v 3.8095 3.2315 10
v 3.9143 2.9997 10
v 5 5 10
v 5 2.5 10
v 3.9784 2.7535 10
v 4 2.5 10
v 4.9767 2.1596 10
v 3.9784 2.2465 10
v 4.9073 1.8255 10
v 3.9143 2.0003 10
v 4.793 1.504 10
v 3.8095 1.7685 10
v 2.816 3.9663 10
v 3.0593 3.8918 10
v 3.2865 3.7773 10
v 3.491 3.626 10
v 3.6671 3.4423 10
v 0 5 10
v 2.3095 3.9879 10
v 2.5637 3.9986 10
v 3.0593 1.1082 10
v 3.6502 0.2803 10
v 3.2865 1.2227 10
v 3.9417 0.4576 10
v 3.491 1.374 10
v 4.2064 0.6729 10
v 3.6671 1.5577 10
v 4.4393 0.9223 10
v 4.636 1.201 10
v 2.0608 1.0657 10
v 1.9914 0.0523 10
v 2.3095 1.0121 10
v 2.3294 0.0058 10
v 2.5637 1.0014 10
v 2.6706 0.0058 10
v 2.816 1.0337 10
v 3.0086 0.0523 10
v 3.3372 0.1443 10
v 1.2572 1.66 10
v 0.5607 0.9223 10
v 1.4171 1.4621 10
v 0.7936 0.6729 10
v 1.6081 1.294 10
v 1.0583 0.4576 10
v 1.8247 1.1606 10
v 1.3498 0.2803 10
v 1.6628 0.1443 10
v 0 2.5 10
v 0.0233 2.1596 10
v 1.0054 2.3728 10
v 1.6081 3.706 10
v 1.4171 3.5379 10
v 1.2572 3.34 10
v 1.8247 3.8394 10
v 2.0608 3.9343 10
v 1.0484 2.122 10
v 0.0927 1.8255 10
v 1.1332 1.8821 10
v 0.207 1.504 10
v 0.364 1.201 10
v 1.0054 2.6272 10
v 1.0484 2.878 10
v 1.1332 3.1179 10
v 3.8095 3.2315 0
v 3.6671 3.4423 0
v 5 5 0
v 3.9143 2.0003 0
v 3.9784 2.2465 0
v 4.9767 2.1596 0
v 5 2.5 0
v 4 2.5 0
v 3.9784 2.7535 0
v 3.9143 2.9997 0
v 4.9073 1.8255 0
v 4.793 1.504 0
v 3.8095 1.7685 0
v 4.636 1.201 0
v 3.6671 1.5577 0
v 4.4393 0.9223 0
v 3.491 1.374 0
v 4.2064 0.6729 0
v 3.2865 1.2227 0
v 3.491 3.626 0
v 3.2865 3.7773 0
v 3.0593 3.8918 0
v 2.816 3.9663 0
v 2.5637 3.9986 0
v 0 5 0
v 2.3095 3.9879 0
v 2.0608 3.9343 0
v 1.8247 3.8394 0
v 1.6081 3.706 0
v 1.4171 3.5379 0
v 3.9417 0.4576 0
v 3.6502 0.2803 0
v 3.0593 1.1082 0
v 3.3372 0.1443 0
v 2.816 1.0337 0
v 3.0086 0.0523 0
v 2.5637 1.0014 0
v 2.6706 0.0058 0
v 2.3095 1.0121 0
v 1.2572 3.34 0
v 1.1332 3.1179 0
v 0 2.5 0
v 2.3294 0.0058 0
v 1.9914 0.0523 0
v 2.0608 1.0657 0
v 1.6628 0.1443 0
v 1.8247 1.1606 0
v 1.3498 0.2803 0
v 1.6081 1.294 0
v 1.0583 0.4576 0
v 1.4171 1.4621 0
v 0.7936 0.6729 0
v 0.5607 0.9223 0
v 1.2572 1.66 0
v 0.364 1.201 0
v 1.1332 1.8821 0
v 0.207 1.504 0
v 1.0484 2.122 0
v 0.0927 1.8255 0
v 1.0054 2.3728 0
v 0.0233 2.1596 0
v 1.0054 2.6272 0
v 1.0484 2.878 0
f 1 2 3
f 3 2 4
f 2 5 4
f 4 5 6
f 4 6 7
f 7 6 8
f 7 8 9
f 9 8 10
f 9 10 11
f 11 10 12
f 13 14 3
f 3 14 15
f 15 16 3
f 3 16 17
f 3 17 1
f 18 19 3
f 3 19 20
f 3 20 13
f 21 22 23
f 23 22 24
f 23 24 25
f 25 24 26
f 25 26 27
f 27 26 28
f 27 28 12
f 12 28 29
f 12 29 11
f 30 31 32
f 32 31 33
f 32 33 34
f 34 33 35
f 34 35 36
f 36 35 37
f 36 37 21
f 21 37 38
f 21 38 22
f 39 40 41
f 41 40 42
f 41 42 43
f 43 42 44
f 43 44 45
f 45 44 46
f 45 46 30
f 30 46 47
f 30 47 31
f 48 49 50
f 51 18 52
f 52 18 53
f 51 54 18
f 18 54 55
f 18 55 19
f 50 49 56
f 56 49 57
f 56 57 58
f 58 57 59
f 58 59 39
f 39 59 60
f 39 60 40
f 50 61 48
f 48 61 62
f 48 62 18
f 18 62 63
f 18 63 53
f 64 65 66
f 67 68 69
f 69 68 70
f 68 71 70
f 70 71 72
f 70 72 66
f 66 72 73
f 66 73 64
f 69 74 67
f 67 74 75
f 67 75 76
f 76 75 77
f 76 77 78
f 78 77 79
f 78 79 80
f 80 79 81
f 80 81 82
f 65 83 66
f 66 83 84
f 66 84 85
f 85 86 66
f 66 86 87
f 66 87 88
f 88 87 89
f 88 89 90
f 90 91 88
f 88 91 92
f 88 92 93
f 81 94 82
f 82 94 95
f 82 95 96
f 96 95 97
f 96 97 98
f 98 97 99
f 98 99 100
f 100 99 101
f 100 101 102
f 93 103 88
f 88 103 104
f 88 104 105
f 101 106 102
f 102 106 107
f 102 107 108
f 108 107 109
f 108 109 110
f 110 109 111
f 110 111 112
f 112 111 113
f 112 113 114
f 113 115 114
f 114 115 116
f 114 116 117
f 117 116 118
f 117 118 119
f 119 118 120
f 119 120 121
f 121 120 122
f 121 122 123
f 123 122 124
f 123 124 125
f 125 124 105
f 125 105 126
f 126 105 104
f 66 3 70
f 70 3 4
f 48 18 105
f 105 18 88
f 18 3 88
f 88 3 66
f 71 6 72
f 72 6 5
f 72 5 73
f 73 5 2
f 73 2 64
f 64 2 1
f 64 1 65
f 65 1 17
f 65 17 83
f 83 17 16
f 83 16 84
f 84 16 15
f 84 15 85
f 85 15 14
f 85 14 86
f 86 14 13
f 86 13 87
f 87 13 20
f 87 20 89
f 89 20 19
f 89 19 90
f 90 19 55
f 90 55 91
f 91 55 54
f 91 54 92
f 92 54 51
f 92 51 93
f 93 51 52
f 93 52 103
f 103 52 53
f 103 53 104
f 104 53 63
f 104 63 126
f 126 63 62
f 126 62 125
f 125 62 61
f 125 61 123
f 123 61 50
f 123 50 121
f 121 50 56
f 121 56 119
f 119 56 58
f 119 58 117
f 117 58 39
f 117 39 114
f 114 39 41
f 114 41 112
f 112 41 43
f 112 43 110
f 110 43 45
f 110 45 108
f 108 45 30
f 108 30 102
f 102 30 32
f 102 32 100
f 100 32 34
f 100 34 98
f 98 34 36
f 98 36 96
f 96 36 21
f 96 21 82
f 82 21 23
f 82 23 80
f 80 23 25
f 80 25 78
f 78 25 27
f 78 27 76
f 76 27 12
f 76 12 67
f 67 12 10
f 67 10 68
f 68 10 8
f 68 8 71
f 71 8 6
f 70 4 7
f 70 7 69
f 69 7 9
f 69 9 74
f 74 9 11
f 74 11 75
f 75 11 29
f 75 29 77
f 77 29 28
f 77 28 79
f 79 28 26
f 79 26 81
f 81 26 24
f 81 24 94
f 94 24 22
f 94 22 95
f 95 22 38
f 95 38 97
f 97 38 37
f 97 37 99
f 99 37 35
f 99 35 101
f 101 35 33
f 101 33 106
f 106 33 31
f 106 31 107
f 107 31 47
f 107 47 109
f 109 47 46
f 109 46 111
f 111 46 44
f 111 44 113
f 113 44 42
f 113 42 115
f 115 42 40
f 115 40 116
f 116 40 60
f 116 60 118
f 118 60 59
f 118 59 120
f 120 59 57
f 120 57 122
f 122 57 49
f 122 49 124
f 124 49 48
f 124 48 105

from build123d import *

# Parameters (mm, degrees)
ESQUISSE1_W             = 5
ESQUISSE1_H             = 5
BOSS_EXTRU_1_DEPTH      = 10
ESQUISSE2_R             = 1.5
ENL_V_MAT_EXTRU_1_DEPTH = 13.247448714


with BuildPart() as part:
    # Esquisse1 → Boss.-Extru.1 (new body)
    with BuildSketch(Plane.XY):
        with Locations((2.5, 2.5)):
            Rectangle(ESQUISSE1_W, ESQUISSE1_H)
    extrude(amount=BOSS_EXTRU_1_DEPTH)

    # Esquisse2 → Enlèv. mat.-Extru.1 (cut, through all)
    with BuildSketch(Plane.XY.offset(10)):
        with Locations((2.5, 2.5)):
            Circle(ESQUISSE2_R)
        with BuildLine():
            ThreePointArc((5, 2.5), (4.267766953, 0.732233047), (2.5, 0))
            Line((2.5, 0), (5, 0))
            Line((5, 0), (5, 2.5))
        make_face()
        with BuildLine():
            ThreePointArc((2.5, 0), (0.732233047, 0.732233047), (0, 2.5))
            Line((0, 2.5), (0, 0))
            Line((0, 0), (2.5, 0))
        make_face()
    extrude(amount=-ENL_V_MAT_EXTRU_1_DEPTH, mode=Mode.SUBTRACT)


solid = part.part
